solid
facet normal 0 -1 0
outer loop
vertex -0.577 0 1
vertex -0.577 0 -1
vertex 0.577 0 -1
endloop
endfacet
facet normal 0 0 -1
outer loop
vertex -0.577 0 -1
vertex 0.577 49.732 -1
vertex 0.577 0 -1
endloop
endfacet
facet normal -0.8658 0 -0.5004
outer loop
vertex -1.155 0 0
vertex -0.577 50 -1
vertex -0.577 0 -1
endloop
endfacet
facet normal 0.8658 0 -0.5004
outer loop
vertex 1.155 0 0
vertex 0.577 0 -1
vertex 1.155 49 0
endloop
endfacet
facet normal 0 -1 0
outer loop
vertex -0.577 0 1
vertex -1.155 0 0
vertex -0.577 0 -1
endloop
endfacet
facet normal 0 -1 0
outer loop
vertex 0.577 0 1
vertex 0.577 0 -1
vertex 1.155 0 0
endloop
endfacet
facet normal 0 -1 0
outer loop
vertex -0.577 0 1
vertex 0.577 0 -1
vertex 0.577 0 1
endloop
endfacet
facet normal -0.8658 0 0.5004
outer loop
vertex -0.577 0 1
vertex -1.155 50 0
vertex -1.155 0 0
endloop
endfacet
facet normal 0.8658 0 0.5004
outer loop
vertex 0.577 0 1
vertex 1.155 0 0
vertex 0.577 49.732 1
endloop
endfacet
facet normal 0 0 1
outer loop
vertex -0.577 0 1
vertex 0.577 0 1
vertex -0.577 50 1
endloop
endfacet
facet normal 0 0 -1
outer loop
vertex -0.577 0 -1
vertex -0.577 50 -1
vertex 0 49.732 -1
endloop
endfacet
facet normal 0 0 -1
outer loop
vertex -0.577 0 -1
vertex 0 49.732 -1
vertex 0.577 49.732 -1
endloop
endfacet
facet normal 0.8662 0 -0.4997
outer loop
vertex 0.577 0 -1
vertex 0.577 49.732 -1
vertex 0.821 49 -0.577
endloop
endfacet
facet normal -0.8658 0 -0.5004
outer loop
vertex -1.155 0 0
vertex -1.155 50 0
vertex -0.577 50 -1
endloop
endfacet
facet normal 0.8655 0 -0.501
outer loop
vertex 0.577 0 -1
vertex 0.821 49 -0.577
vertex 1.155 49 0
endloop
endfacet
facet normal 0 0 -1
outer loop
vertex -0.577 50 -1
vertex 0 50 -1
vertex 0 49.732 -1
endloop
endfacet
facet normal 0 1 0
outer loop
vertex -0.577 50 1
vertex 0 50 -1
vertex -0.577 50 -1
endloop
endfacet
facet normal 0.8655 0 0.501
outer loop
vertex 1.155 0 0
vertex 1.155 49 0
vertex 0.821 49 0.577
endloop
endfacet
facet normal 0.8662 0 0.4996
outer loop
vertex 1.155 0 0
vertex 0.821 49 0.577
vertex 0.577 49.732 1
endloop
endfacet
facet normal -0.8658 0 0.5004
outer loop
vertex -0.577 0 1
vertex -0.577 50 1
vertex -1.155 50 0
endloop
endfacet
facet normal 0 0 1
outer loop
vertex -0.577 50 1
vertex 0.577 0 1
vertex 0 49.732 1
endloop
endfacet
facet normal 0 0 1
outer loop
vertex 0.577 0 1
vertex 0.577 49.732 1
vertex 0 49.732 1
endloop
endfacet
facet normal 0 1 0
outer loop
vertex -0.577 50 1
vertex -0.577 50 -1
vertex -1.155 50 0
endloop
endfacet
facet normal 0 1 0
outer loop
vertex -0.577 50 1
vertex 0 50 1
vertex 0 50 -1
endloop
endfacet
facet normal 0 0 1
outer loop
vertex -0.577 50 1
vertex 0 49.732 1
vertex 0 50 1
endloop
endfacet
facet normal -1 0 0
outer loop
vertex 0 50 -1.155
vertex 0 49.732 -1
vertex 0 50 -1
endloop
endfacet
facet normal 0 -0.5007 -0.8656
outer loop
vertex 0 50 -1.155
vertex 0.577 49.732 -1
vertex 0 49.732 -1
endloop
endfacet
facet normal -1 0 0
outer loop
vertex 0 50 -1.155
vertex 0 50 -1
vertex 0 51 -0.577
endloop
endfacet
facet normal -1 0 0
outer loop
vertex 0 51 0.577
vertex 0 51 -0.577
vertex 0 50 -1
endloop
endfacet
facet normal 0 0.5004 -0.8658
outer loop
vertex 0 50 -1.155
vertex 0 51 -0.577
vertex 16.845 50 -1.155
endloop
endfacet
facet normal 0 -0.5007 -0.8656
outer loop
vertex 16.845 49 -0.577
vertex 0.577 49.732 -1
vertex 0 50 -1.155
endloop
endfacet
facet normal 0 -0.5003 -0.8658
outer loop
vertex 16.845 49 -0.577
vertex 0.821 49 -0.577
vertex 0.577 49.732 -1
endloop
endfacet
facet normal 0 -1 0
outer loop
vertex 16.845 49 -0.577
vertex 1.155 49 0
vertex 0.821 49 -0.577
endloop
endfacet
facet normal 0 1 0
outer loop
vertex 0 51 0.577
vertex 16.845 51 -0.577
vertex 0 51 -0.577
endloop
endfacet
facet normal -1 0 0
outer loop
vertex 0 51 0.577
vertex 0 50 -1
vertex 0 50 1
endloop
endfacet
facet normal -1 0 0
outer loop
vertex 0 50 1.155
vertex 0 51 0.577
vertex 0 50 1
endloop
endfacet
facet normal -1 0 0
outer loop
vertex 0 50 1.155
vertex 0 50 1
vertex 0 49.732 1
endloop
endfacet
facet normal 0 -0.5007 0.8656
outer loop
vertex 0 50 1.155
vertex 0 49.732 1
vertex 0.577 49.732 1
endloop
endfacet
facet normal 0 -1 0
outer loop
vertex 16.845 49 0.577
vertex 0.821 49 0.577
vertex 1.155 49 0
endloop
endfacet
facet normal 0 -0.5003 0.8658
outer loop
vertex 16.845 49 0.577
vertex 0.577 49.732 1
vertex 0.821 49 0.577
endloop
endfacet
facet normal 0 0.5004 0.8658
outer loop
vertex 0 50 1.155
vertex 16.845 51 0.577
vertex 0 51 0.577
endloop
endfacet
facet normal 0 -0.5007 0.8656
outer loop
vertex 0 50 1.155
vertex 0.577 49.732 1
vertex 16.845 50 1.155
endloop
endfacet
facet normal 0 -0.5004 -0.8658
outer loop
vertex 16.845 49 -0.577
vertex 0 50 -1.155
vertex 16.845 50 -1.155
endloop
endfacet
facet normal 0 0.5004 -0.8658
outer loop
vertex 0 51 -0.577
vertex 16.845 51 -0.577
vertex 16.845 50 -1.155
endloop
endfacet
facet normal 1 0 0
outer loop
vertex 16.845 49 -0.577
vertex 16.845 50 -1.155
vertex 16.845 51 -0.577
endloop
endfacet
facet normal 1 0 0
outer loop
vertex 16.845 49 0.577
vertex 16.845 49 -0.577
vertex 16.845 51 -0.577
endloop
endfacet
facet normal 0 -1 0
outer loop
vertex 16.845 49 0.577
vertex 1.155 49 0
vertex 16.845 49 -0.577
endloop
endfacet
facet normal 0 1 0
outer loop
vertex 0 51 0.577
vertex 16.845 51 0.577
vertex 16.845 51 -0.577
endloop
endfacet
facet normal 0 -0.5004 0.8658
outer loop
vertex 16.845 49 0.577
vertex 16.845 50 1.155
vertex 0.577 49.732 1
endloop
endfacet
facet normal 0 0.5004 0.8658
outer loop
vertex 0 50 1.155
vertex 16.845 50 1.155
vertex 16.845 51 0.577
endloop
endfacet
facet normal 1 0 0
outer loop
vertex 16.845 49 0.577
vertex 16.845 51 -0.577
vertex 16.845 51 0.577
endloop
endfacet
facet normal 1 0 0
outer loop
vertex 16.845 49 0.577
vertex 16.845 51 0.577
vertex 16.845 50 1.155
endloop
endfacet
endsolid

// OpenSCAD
// 2 mm metric hex key
// The holder specifies the hex size. Arm lengths follow the Wiha 350 short series as a representative example. The holder source leaves the key manufacturer unspecified. The elbow is simplified.
// Units: mm
$fn = 64;
union() {
    translate([0, 0, 0]) rotate([-90, 0, 0])
        cylinder(h=50.0, r1=1.1547005383792517, r2=1.1547005383792517, $fn=6);
    translate([0, 50.0, 0]) rotate([0, 90, 0])
        cylinder(h=16.845299461620748, r1=1.1547005383792517, r2=1.1547005383792517, $fn=6);
}
